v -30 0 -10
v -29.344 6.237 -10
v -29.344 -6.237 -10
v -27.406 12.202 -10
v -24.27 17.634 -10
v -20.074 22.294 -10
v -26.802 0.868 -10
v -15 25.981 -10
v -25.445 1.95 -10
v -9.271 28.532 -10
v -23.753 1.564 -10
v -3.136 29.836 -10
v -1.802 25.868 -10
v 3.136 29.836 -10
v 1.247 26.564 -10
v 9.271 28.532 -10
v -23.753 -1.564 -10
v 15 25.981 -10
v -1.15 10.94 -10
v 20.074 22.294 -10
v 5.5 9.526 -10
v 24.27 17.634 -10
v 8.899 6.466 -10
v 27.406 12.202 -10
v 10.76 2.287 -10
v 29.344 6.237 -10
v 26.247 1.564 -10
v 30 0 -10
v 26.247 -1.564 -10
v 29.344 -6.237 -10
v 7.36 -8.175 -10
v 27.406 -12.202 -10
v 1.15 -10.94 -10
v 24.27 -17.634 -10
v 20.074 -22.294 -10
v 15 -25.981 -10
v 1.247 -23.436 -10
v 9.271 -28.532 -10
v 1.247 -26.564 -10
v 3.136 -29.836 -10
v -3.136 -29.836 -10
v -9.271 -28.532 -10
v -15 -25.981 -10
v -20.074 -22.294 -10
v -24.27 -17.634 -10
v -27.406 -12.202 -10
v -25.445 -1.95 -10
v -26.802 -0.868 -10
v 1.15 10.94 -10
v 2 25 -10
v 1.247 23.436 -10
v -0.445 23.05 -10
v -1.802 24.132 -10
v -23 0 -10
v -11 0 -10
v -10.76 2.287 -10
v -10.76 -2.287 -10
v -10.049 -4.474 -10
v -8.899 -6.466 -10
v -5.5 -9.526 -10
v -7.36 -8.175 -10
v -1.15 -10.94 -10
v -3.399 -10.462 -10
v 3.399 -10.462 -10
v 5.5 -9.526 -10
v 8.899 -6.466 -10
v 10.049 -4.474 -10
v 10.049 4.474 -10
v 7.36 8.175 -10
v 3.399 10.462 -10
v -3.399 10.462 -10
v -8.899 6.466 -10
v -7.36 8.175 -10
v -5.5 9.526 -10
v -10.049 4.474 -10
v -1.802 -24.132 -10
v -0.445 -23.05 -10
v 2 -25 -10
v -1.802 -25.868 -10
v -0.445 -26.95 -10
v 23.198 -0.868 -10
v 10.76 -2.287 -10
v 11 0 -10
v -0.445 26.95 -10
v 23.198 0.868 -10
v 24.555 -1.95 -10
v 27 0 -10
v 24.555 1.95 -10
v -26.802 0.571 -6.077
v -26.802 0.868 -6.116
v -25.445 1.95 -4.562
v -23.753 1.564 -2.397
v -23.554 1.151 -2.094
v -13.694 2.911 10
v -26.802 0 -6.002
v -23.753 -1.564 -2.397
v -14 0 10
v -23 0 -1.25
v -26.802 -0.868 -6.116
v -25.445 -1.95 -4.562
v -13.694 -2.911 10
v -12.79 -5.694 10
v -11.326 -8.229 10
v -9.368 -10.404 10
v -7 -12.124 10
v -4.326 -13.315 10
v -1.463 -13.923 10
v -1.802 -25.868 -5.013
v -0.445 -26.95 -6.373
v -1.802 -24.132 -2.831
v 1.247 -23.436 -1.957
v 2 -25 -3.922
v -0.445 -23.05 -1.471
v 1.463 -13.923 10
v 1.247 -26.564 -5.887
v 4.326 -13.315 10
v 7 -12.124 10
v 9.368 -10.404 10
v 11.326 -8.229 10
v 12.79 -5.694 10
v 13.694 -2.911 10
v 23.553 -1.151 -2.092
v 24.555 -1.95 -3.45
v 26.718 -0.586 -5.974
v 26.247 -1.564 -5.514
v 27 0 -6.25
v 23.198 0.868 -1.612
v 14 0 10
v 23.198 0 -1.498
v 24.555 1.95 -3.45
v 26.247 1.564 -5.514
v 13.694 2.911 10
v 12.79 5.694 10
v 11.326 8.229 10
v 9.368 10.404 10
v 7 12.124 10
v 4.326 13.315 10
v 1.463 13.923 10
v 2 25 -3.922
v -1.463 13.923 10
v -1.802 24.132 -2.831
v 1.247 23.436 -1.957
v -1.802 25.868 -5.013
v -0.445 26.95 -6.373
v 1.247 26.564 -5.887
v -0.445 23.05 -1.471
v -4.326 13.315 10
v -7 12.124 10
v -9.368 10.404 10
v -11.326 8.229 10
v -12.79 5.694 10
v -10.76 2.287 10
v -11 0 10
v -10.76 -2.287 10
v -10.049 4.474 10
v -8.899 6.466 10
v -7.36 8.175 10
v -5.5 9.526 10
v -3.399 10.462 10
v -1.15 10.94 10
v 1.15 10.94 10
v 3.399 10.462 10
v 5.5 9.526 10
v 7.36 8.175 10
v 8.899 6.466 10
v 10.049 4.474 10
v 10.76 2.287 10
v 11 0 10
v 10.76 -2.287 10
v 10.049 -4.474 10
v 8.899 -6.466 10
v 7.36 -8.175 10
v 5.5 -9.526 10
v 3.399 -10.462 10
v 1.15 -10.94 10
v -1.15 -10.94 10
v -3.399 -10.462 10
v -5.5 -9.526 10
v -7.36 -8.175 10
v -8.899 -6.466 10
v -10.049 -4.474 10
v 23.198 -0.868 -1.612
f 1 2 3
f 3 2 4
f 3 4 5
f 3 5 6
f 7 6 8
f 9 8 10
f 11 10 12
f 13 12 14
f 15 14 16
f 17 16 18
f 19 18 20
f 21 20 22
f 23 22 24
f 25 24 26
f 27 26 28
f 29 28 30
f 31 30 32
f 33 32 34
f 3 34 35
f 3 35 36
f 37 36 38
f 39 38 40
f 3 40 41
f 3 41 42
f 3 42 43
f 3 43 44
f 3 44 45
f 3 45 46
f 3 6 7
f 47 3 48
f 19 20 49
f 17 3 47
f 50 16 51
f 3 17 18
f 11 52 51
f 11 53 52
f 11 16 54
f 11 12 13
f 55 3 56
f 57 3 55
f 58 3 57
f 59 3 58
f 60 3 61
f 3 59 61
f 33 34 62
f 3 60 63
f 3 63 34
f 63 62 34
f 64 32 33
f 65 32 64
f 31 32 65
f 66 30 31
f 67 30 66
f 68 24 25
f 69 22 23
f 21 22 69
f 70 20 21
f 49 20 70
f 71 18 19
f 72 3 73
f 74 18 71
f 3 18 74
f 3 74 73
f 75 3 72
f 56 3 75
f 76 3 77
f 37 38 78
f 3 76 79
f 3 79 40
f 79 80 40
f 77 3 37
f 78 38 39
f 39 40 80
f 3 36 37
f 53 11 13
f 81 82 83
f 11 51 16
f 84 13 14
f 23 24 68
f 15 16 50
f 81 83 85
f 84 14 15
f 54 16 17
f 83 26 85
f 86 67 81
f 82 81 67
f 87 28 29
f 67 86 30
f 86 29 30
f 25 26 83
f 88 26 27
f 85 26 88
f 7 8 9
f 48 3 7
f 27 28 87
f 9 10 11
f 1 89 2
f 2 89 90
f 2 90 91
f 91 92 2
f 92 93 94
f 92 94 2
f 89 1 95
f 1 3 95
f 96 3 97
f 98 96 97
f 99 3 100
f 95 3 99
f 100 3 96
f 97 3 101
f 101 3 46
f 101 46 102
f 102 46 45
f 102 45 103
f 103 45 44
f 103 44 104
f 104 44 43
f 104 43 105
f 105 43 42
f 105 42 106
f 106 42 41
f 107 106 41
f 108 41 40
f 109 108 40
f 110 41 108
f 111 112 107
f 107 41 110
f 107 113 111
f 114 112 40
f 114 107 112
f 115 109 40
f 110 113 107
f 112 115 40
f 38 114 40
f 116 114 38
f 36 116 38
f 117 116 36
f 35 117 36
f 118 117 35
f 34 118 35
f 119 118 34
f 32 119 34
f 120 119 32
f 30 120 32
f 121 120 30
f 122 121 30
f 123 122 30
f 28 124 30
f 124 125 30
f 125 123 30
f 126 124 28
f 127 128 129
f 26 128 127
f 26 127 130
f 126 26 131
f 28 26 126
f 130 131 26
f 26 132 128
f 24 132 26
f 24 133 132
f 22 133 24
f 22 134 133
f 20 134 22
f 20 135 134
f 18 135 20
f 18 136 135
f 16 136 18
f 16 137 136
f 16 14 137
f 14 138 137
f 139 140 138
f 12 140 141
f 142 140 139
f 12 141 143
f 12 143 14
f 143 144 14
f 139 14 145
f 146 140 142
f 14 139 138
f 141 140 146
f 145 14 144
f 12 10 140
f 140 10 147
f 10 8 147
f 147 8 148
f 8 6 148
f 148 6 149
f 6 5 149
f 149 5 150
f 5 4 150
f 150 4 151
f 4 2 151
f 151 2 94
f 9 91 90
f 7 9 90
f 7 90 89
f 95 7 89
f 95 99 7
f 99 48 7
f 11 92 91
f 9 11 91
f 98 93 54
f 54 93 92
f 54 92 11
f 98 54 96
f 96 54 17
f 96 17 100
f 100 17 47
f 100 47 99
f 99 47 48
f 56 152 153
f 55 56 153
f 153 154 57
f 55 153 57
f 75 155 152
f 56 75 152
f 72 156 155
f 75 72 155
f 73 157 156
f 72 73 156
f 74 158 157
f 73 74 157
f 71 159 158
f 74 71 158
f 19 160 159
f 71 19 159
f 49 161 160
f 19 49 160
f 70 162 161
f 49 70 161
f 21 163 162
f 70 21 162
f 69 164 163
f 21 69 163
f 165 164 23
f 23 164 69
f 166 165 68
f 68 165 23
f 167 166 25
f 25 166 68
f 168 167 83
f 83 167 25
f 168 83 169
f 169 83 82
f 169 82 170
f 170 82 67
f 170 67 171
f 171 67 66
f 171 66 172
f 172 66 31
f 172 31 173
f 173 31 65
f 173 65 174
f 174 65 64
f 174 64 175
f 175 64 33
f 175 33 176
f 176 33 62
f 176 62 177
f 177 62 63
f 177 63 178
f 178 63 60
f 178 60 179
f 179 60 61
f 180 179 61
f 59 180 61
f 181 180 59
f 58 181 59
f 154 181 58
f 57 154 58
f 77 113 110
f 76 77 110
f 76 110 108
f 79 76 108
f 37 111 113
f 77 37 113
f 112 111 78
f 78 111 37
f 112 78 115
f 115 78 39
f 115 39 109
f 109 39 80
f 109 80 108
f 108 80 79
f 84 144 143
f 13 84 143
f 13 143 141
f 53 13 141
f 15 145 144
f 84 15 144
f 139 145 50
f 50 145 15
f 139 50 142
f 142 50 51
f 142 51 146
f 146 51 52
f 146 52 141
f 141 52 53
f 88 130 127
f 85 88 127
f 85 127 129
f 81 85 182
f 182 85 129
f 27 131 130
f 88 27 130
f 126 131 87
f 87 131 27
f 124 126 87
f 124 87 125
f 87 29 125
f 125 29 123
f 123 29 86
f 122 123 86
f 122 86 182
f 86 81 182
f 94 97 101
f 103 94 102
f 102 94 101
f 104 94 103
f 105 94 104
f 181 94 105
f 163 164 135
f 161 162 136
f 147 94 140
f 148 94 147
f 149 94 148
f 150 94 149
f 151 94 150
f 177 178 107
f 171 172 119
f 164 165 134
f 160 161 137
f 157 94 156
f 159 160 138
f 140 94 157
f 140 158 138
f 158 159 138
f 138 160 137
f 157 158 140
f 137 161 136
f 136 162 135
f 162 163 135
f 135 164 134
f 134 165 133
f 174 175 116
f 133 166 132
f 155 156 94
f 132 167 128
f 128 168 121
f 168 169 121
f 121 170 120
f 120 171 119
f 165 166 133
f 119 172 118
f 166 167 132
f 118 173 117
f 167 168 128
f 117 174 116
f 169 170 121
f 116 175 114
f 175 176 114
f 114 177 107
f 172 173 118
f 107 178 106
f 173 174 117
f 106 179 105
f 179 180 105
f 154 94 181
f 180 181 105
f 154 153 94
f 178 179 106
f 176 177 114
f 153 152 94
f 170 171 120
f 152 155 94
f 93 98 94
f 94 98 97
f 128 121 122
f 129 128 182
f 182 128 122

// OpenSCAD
d =25;

difference (){cylinder(h = 20, r1 = 30, r2 = 14, center = true);
cylinder(h = 21, r = 11, center = true);

translate([d,0,0])cylinder(h = 21, r = 2, center = true);
translate([-d,0,0])cylinder(h = 21, r = 2, center = true);
translate([0,d,0])cylinder(h = 21, r = 2, center = true);
translate([0,-d,0])cylinder(h = 21, r = 2, center = true);}
